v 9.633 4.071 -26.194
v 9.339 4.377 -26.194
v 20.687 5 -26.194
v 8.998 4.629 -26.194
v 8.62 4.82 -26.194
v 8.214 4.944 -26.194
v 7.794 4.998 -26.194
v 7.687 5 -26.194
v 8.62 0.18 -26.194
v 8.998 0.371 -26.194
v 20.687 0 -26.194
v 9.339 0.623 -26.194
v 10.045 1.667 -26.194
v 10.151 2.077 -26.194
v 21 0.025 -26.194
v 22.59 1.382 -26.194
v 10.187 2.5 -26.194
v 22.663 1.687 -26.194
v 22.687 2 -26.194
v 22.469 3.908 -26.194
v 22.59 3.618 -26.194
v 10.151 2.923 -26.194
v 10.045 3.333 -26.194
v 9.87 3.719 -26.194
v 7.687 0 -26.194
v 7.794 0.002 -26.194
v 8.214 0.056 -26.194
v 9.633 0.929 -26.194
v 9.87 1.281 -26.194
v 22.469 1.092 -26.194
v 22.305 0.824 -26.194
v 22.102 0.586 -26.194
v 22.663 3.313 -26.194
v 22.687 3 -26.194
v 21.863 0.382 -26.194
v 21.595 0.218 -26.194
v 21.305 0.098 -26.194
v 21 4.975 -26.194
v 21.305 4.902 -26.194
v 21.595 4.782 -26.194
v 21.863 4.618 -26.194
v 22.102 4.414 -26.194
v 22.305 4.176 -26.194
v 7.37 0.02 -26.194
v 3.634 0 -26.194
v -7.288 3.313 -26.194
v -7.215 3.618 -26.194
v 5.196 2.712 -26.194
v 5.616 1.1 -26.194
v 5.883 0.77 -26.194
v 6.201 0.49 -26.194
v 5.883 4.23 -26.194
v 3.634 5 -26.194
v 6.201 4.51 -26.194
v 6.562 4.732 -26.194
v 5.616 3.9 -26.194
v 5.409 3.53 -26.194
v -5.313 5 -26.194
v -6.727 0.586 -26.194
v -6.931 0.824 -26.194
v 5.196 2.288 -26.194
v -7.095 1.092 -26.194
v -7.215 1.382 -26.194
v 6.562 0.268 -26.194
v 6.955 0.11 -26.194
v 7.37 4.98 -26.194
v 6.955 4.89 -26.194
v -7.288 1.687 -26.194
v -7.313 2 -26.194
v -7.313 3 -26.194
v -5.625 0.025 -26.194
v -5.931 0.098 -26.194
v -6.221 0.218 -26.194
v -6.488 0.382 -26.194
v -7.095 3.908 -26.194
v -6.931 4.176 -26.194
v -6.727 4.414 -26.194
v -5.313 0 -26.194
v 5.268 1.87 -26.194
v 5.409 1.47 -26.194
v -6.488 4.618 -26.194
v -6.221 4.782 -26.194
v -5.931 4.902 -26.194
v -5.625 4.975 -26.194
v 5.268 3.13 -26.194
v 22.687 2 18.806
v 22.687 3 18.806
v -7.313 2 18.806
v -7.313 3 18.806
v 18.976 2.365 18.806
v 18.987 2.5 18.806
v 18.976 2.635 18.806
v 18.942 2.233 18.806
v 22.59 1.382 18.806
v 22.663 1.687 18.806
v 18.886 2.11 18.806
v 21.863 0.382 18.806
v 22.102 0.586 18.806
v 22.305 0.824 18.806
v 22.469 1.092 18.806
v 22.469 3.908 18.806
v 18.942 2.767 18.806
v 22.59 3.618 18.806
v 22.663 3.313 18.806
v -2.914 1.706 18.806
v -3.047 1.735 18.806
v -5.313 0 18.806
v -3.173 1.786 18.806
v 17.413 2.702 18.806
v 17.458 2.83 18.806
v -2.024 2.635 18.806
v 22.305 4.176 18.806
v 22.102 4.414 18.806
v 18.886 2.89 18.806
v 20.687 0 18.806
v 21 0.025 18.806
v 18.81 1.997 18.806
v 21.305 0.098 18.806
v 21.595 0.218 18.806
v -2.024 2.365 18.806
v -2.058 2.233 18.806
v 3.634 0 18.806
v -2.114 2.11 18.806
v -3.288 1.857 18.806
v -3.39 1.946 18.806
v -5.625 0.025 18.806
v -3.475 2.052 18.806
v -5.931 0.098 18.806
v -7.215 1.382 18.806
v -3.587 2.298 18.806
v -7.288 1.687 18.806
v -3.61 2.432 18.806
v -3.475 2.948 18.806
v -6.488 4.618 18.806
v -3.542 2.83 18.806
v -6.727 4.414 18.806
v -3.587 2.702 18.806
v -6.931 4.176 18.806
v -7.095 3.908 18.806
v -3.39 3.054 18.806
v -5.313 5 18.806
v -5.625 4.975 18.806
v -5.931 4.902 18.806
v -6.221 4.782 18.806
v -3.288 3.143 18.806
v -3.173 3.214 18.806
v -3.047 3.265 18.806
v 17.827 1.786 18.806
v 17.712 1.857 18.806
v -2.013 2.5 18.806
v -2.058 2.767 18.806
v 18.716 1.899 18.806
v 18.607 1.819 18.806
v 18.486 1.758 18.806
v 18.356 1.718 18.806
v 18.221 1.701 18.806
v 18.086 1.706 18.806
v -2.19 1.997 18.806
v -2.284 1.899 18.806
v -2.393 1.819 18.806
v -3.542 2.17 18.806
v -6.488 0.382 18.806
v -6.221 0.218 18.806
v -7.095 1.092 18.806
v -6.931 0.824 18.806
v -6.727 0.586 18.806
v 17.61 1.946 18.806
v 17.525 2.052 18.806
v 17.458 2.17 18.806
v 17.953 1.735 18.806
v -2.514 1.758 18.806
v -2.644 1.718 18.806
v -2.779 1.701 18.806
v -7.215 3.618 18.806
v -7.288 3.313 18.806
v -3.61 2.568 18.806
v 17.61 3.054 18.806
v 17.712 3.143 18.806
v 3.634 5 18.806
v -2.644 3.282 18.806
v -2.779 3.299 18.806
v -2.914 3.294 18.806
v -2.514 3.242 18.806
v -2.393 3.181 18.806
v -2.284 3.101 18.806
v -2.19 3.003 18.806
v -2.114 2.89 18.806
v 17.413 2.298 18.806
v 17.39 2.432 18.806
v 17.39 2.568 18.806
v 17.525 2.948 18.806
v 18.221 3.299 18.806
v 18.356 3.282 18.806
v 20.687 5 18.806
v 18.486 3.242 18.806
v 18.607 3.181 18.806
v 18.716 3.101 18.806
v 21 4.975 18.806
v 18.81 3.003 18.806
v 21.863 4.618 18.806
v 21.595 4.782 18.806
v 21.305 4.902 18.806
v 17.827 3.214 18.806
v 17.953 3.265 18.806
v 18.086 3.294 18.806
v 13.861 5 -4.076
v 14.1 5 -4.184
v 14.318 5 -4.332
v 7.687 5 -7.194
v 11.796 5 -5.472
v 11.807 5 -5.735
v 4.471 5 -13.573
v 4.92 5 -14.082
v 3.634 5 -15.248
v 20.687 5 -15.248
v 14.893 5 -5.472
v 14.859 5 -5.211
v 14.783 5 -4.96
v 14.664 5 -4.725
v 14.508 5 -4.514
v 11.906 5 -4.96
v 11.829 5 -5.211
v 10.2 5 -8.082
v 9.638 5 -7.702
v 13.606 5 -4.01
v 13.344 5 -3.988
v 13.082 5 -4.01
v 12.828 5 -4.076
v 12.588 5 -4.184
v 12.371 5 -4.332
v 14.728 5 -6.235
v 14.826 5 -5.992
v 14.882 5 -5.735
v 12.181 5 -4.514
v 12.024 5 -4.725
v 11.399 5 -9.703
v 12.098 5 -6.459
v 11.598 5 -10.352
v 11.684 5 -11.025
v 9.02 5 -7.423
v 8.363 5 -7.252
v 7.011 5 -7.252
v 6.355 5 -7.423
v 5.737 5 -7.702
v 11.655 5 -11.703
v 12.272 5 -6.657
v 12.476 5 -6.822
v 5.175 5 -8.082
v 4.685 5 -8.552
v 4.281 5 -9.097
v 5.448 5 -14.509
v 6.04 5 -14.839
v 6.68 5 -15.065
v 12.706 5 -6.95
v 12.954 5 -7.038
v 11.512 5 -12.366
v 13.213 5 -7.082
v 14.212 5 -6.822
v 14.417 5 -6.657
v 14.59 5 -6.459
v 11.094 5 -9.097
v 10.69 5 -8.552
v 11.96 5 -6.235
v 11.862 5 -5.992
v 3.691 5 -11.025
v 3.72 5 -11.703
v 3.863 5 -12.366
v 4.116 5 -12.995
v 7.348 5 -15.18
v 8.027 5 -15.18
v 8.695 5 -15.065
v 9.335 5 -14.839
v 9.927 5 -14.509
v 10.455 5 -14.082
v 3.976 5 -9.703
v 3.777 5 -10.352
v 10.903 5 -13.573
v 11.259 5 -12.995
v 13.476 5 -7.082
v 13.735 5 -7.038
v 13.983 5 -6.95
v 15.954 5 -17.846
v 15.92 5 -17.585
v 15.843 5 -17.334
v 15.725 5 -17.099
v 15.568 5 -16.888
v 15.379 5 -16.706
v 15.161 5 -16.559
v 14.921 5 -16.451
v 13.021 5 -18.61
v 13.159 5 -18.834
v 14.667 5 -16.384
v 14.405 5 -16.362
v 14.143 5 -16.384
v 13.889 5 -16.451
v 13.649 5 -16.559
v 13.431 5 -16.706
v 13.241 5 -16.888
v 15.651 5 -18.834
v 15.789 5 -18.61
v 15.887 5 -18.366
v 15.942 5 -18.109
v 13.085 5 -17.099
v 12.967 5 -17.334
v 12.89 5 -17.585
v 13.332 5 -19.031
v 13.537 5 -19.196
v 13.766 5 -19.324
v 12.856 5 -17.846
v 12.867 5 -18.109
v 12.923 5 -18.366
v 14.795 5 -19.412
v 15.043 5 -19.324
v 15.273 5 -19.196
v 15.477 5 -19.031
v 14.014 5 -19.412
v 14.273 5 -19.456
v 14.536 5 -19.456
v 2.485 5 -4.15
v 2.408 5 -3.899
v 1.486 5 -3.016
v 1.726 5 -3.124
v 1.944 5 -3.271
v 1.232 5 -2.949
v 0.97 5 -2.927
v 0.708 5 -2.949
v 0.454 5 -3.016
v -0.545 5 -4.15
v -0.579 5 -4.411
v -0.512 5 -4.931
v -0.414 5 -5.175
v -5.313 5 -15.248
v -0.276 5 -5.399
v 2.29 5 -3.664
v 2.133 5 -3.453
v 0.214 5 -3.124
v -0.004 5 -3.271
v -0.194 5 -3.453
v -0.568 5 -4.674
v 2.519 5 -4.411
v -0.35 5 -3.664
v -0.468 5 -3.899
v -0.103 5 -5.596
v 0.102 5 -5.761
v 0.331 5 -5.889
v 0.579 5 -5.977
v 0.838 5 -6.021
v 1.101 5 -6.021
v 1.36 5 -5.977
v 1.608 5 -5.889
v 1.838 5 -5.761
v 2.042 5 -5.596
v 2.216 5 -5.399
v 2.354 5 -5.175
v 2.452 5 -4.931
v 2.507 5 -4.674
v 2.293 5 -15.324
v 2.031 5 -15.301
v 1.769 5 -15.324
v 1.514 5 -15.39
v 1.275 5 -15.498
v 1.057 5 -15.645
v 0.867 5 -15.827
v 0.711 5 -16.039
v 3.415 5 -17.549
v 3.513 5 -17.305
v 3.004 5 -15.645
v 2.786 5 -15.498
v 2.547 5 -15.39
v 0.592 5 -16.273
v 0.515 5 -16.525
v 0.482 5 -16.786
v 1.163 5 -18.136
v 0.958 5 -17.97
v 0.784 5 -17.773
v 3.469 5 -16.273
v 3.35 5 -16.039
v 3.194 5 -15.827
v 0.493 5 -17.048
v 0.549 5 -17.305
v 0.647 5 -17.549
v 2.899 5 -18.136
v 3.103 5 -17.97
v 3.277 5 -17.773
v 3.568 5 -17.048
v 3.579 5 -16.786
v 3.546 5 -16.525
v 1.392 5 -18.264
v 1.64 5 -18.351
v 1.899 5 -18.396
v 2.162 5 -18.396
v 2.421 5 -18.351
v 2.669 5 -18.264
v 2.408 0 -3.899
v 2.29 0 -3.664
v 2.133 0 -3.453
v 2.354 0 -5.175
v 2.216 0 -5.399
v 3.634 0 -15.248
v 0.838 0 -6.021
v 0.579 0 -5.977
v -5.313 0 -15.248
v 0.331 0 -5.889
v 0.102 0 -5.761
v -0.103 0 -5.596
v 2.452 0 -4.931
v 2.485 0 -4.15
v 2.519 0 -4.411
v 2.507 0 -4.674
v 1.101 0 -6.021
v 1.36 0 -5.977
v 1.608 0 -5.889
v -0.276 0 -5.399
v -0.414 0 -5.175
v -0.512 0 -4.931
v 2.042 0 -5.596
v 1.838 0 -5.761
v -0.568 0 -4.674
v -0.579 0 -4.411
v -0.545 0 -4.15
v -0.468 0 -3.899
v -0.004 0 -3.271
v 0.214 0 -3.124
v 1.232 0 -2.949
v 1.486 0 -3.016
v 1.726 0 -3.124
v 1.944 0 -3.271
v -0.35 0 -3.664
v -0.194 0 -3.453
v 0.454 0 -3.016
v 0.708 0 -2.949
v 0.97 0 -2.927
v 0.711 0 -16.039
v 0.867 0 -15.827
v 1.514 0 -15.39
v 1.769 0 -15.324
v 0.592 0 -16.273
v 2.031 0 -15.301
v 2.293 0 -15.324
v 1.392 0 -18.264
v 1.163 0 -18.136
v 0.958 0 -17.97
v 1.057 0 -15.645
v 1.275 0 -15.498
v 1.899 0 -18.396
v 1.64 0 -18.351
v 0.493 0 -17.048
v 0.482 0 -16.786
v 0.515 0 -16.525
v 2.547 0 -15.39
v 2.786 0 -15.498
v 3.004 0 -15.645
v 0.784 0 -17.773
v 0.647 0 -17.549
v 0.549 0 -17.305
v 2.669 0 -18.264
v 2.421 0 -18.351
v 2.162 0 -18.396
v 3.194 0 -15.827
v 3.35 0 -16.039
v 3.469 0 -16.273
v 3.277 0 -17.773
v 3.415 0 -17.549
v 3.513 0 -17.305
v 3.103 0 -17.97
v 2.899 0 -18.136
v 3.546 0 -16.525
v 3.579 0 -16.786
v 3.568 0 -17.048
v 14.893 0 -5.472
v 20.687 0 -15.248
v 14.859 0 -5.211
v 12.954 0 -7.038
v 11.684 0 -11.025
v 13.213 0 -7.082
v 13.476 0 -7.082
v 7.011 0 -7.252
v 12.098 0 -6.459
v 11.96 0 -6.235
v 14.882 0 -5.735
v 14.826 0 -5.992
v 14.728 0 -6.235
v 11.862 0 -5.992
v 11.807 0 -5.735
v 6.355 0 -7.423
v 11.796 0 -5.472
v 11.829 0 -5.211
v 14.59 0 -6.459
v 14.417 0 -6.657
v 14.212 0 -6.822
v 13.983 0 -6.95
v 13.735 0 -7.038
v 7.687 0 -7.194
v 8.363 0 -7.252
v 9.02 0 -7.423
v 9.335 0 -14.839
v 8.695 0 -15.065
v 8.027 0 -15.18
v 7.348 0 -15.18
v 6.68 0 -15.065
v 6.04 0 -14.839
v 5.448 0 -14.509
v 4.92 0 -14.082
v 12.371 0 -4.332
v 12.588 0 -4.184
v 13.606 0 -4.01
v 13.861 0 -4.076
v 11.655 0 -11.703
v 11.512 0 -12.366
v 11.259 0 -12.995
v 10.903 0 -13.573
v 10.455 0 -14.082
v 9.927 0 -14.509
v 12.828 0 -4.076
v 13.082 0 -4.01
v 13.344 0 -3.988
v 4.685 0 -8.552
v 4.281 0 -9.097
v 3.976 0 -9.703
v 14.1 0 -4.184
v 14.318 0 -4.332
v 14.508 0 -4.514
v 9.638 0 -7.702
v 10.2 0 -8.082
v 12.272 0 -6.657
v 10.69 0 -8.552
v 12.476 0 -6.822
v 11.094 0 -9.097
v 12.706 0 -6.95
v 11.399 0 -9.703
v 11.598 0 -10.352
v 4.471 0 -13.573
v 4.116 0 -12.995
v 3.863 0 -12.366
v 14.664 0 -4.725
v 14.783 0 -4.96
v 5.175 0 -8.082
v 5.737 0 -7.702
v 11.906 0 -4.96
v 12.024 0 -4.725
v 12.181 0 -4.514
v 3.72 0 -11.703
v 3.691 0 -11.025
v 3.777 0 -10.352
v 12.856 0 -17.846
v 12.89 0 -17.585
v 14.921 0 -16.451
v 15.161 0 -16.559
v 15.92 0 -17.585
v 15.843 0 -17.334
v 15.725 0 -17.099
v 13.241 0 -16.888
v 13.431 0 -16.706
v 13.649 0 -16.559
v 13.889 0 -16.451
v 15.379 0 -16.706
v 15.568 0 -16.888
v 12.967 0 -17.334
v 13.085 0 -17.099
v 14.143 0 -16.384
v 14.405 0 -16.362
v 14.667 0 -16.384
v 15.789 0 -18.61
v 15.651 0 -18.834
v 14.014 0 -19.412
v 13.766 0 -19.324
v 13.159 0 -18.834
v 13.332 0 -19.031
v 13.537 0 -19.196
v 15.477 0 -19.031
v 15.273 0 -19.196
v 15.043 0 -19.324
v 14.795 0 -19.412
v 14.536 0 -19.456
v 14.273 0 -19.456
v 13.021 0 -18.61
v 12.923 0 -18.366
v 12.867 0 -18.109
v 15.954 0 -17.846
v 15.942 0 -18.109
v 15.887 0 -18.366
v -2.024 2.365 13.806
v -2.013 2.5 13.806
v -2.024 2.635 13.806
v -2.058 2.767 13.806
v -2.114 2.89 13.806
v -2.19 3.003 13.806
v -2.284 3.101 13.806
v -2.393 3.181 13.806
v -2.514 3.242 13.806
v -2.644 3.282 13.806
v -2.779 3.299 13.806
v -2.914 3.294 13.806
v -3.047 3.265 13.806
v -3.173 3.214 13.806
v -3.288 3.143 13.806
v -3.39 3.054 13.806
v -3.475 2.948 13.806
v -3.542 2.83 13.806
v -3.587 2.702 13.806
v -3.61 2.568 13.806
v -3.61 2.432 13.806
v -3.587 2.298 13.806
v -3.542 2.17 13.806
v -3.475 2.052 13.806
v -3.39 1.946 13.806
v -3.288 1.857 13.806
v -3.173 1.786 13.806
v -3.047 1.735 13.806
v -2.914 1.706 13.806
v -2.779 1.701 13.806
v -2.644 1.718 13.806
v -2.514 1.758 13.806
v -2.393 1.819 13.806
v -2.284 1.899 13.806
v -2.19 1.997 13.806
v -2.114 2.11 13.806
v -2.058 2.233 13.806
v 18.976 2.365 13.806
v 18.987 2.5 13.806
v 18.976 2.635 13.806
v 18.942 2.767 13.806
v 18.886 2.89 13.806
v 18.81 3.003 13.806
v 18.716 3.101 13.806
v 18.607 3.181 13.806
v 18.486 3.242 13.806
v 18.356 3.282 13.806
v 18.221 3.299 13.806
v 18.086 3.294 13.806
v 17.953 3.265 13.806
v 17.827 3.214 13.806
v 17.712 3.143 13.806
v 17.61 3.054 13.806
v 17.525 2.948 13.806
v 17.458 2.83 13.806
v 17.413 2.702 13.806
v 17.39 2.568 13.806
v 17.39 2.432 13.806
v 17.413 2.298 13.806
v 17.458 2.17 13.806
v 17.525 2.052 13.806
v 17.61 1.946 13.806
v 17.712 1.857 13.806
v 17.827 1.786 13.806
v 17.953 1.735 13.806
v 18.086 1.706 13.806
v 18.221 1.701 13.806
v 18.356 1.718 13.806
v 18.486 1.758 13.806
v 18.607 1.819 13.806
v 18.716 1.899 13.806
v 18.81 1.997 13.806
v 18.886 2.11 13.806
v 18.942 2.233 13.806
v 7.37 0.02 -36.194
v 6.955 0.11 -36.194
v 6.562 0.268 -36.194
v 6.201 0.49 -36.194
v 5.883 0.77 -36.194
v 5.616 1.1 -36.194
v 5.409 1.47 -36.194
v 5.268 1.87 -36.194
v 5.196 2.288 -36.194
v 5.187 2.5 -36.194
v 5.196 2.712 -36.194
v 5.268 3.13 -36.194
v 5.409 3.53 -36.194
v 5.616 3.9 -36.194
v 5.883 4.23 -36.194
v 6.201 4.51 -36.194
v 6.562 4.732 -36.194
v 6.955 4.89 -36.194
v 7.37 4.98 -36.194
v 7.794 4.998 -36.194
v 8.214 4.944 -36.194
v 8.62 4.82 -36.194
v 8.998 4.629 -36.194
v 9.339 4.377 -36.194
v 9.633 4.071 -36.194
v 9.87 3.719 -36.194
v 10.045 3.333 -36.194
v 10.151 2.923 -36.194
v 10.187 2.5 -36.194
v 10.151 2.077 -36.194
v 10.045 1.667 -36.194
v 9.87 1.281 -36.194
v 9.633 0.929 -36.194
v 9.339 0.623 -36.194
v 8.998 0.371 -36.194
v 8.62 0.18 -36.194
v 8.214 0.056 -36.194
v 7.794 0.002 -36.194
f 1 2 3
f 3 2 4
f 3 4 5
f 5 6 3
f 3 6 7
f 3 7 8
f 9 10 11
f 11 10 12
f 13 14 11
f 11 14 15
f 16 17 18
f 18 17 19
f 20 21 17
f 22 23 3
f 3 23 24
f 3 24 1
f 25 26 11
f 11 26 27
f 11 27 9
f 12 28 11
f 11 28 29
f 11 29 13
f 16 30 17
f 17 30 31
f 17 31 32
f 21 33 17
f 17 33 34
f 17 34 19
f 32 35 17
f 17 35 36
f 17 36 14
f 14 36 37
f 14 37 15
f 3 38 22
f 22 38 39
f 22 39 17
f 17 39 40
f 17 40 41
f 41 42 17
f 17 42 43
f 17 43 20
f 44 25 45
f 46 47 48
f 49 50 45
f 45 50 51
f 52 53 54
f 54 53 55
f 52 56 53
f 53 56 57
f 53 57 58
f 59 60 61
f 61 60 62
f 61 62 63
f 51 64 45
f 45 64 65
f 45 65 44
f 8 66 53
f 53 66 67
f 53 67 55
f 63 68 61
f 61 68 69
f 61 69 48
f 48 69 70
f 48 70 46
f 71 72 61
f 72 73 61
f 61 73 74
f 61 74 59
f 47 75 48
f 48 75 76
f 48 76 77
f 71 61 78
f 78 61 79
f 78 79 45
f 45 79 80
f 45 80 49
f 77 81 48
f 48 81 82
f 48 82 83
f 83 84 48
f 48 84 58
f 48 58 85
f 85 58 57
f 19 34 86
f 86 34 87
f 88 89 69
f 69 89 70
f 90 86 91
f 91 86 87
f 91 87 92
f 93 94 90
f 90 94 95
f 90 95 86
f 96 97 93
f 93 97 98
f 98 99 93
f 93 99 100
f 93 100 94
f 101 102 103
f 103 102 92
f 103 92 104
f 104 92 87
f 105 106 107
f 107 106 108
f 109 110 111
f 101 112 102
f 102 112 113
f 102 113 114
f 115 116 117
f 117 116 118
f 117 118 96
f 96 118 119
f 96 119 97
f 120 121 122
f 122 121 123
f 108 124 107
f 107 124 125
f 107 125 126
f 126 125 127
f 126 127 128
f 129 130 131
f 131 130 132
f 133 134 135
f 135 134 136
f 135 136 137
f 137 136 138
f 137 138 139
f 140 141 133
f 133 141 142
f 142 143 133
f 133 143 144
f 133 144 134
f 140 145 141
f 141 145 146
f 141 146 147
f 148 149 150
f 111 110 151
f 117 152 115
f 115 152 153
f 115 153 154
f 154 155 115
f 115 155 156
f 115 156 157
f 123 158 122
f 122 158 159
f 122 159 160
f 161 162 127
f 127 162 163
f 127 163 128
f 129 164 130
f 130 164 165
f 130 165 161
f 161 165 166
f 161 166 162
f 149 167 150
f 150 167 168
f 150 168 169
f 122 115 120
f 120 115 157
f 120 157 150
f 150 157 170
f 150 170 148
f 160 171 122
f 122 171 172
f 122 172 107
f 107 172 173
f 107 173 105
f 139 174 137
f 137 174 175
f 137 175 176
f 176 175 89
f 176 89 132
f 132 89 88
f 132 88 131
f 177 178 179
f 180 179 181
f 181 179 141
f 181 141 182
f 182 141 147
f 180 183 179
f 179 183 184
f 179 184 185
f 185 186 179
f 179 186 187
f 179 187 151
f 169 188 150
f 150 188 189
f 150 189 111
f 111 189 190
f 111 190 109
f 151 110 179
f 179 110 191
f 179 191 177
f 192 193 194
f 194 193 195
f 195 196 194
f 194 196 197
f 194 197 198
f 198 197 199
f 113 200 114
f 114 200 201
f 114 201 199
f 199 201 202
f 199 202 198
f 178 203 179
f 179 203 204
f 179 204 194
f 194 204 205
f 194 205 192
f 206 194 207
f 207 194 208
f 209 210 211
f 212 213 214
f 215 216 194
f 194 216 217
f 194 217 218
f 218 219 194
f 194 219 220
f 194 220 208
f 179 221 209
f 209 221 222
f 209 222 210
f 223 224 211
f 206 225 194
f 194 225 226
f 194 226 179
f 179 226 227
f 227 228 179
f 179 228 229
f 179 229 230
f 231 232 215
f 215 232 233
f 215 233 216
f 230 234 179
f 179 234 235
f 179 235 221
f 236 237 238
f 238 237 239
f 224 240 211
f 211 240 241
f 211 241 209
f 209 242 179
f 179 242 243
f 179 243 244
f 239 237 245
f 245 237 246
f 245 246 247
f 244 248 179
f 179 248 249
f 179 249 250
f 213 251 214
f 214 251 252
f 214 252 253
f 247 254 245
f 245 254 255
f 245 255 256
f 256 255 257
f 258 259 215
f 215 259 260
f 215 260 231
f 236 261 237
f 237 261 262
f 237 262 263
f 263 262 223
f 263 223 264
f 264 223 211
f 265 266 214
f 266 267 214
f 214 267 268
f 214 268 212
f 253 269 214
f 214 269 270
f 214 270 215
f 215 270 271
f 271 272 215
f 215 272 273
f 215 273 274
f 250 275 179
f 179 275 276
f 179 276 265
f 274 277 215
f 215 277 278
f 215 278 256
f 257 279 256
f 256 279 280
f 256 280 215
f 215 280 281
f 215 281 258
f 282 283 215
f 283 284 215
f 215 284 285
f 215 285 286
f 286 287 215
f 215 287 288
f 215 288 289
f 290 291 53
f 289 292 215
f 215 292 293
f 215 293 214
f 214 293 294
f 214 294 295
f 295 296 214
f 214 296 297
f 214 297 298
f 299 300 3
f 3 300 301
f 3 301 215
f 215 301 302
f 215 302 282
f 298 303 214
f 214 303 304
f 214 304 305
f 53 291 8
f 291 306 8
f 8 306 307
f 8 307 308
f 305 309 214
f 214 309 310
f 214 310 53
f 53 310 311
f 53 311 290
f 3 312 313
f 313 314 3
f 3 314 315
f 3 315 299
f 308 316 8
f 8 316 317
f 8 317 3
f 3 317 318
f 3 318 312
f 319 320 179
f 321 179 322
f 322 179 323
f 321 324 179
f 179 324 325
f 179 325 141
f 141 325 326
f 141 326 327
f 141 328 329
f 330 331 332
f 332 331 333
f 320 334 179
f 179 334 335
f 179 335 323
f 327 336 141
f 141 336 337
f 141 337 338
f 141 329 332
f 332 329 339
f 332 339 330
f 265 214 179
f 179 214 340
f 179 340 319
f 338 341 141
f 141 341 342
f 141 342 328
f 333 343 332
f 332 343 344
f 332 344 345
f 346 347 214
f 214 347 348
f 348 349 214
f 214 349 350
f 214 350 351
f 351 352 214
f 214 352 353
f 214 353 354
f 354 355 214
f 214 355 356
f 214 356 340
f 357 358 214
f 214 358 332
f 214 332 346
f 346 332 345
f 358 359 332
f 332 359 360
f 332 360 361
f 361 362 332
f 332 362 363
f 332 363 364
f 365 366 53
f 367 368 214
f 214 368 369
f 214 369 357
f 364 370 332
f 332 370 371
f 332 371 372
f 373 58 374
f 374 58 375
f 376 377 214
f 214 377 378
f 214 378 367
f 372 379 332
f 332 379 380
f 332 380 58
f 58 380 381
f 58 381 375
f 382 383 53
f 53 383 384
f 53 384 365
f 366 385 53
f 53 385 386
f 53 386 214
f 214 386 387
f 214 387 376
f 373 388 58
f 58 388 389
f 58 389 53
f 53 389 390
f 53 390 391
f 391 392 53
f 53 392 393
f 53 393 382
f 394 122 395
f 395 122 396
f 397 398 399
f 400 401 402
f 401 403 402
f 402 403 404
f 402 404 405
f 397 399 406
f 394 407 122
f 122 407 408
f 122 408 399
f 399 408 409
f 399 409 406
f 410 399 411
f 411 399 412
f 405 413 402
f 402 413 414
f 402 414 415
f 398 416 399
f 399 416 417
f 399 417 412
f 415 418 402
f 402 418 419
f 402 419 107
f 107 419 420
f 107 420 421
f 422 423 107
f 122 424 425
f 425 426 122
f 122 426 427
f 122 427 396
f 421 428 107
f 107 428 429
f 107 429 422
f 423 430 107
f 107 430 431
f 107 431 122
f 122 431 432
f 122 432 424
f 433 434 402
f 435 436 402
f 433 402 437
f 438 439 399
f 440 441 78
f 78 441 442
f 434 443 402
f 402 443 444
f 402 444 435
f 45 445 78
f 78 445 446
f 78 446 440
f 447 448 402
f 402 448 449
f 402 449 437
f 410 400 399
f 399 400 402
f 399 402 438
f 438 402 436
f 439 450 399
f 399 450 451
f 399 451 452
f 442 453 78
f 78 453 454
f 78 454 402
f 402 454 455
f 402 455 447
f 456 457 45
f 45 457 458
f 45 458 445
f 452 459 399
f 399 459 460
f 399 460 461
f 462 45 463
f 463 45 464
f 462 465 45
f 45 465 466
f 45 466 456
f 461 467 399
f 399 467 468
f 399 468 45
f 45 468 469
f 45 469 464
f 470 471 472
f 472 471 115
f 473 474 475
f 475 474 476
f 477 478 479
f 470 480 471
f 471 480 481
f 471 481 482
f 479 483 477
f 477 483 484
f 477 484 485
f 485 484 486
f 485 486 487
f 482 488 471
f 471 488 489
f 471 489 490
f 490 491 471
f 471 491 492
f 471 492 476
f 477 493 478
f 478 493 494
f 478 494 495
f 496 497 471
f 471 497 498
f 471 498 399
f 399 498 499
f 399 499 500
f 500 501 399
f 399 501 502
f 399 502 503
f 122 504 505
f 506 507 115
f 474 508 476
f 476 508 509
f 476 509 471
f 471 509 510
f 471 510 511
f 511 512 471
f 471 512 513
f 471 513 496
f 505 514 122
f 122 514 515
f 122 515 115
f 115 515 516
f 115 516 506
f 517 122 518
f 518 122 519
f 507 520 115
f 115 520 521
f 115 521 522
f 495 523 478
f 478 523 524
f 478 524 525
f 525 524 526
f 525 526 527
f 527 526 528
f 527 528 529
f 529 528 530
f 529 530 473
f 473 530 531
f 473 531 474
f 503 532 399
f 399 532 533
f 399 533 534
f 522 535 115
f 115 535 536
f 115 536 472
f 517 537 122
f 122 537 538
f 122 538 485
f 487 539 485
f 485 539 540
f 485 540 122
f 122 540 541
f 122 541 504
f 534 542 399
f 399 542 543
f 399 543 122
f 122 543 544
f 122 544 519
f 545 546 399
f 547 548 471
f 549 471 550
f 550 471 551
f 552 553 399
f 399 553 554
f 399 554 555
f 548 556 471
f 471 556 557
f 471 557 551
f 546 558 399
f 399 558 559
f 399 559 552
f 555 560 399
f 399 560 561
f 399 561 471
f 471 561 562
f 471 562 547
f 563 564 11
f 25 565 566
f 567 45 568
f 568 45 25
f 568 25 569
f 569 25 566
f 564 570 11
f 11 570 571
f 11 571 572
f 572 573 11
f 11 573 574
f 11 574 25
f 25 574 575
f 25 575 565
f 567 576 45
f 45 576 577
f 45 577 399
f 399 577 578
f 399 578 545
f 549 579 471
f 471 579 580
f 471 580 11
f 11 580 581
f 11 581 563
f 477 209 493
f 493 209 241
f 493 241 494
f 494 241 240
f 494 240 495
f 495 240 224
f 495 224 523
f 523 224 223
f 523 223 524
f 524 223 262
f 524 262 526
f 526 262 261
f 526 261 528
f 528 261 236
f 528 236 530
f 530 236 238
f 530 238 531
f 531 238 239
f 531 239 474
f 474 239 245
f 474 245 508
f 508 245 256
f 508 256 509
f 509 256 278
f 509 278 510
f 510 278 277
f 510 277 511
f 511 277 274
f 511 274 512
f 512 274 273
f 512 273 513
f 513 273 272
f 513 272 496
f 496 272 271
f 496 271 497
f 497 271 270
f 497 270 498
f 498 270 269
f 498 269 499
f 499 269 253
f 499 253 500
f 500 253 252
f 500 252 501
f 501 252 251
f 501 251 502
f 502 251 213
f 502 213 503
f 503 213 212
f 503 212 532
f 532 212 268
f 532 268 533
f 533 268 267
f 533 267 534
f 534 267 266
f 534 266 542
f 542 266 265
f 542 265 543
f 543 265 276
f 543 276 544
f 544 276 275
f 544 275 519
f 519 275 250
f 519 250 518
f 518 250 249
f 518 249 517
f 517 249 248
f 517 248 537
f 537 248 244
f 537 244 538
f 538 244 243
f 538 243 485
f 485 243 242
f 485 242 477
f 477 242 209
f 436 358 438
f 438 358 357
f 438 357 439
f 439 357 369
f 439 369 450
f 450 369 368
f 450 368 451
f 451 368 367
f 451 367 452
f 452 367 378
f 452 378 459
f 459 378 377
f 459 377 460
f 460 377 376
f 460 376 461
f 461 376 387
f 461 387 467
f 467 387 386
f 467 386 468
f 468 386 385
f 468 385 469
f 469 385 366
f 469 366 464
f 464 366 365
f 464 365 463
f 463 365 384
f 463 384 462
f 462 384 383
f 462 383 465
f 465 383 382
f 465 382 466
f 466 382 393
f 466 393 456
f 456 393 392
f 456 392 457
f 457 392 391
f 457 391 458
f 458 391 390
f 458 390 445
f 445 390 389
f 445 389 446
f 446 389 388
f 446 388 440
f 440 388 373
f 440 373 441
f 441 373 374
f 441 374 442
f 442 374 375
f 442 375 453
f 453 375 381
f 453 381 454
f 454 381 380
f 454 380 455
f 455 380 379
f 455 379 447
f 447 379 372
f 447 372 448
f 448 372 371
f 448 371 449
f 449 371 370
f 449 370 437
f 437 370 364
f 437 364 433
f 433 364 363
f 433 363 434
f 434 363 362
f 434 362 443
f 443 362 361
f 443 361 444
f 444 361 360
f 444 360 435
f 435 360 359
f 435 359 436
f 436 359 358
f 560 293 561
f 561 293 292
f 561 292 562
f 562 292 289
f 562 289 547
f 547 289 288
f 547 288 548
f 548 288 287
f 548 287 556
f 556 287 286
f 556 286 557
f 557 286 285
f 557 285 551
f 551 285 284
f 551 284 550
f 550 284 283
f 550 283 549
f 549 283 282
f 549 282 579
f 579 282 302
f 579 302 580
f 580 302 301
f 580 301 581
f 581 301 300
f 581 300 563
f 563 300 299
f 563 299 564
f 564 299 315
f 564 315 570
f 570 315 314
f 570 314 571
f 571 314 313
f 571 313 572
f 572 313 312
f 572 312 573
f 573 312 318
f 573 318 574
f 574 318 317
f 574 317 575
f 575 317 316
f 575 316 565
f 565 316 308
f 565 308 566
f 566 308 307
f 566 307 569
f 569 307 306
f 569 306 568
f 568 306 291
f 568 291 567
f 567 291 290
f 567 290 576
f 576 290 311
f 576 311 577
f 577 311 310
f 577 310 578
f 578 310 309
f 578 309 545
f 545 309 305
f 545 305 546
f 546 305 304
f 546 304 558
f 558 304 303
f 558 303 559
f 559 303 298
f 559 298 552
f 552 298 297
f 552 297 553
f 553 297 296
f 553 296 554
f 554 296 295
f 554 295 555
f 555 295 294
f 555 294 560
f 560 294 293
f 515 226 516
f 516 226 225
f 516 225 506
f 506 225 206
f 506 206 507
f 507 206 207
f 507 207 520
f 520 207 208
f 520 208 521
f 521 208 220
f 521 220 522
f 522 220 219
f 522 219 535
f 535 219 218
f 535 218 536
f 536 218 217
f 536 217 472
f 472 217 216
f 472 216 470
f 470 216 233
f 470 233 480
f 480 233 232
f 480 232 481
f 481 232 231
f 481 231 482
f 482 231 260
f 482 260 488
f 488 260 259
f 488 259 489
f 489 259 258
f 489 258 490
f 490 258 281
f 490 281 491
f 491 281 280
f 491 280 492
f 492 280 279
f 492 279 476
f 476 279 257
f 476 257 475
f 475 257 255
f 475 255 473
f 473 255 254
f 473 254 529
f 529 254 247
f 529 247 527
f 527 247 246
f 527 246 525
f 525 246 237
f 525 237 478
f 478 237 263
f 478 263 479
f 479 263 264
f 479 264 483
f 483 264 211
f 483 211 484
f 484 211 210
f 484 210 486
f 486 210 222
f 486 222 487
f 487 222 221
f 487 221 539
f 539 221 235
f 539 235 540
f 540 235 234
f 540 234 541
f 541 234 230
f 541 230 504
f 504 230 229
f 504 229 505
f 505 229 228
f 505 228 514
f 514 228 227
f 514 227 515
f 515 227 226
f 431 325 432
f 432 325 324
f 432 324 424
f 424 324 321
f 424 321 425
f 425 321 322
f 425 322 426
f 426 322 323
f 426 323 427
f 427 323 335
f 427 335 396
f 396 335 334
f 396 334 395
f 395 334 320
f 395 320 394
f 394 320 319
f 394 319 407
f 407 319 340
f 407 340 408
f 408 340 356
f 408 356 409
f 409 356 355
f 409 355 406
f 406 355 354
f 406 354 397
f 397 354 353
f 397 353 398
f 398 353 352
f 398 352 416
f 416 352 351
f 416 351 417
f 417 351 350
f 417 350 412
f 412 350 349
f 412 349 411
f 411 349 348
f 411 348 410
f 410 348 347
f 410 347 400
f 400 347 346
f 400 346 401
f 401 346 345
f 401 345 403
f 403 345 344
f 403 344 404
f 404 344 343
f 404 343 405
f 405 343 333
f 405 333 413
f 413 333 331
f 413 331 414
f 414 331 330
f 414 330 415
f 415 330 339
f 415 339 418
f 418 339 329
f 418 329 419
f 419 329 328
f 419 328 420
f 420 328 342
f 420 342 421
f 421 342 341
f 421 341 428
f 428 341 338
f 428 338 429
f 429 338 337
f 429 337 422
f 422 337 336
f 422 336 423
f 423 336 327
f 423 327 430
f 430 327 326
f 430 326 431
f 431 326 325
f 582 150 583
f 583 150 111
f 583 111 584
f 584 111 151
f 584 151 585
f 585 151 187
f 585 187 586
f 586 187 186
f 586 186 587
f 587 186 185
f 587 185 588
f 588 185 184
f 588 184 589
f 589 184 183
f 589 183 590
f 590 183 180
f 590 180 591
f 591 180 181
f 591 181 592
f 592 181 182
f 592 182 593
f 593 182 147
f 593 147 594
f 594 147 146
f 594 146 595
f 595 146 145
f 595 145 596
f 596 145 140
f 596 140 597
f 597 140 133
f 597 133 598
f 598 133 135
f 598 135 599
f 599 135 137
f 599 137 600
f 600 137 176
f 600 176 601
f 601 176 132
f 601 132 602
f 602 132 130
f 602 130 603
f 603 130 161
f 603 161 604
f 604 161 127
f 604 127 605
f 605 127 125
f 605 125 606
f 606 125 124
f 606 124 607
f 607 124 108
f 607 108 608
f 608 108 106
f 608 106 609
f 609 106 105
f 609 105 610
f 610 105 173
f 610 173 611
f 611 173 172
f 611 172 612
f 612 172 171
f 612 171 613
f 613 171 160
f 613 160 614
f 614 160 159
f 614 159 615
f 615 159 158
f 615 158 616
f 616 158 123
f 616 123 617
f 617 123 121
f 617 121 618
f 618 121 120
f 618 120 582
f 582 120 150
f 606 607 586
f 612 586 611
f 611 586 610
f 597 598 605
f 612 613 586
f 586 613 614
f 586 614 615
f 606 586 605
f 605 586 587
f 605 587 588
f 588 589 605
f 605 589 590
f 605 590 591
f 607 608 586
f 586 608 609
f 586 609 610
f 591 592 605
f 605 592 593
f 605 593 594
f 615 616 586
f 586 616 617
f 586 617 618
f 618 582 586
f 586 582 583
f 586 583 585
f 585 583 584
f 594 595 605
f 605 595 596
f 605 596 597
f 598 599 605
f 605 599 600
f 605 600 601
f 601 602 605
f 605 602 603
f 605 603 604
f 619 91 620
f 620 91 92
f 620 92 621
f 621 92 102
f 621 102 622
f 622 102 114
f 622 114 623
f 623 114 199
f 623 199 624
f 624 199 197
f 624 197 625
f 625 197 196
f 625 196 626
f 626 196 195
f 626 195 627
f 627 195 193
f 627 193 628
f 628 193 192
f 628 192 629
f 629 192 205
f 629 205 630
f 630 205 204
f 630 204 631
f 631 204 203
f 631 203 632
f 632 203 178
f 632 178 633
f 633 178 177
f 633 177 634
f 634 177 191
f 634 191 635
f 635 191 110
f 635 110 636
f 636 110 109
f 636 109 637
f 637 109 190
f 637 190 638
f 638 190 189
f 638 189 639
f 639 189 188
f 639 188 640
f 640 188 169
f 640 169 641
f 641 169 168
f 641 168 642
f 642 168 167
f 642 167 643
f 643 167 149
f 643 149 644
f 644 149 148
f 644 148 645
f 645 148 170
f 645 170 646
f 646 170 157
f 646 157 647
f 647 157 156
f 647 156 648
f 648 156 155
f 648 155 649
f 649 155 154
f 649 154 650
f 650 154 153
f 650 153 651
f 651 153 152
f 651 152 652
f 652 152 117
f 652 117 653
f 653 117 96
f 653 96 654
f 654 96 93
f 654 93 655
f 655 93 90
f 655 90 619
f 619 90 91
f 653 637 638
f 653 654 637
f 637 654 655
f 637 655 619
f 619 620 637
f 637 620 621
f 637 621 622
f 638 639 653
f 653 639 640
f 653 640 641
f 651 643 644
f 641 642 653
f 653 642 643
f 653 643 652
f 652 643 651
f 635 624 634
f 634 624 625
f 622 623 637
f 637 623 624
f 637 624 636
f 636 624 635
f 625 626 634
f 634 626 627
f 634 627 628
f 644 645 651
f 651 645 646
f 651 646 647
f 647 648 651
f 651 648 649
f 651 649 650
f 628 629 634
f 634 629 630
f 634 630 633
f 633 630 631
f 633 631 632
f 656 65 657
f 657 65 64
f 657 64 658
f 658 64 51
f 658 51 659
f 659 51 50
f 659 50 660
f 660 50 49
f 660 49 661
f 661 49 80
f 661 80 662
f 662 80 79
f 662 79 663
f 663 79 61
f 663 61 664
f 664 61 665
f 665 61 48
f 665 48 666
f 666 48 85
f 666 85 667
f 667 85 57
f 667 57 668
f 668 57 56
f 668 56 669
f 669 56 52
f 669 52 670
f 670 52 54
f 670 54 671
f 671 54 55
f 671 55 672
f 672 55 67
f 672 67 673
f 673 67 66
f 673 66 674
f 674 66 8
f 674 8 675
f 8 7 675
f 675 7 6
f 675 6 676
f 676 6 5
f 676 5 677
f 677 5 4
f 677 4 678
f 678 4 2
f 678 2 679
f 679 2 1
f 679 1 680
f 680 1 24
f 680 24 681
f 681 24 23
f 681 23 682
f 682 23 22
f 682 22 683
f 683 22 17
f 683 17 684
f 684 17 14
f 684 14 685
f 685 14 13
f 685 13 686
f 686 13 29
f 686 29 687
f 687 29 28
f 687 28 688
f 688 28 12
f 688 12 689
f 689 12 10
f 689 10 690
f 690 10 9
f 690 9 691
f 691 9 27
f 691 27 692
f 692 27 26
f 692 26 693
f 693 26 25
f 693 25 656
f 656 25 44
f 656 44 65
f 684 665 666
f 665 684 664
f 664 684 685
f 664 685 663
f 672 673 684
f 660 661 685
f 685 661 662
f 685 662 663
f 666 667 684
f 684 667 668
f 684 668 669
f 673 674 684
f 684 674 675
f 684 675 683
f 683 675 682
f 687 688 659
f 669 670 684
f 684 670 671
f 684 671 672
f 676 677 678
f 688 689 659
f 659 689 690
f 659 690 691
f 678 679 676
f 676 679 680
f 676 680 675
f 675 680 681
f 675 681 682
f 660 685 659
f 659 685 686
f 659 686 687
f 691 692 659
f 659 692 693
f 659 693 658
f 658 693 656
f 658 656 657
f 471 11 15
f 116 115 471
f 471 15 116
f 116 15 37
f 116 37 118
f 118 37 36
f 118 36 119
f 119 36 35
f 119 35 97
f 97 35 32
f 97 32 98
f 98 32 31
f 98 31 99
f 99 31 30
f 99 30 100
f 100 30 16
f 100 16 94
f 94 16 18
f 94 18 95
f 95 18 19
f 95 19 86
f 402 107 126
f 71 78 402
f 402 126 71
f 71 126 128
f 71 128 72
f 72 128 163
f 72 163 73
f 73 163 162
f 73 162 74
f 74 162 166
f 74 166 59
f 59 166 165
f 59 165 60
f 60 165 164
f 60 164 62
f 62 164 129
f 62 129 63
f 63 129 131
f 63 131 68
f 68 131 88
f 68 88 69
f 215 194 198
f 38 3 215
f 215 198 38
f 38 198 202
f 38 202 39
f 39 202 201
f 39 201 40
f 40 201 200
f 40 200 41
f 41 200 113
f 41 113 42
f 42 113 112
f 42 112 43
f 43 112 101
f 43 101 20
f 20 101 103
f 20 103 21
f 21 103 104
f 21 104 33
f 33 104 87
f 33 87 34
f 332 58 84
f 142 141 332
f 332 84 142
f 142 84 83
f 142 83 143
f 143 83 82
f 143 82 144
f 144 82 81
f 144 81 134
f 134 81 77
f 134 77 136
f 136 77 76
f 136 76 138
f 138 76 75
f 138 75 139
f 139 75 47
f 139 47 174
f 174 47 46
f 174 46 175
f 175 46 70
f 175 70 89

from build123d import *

# Parameters (mm, degrees)
SKETCH1_W           = 30
SKETCH1_H           = 45
BOSS_EXTRUDE1_DEPTH = 5
SKETCH2_R           = 4
CUT_EXTRUDE1_DEPTH  = 5
SKETCH3_R           = 1.55
CUT_EXTRUDE2_DEPTH  = 5
SKETCH4_R           = 0.8
CUT_EXTRUDE3_DEPTH  = 5
SKETCH5_R           = 2.5
BOSS_EXTRUDE2_DEPTH = 10
FILLET1_R           = 2


with BuildPart() as part:
    # Sketch1 → Boss-Extrude1 (new body)
    with BuildSketch(Plane(origin=(0, 0, 0), x_dir=(1, 0, 0), z_dir=(0, 1, 0))):
        with Locations((7.687417977, 3.694491888)):
            Rectangle(SKETCH1_W, SKETCH1_H)
    extrude(amount=BOSS_EXTRUDE1_DEPTH)

    # Sketch2 → Cut-Extrude1 (cut)
    with BuildSketch(Plane(origin=(0, 5, 0), x_dir=(-1, 0, 0), z_dir=(0, 1, 0))):
        with Locations(Location((-7.687417977, -11.194491888, 0), (0, 0, 90))):
            Circle(SKETCH2_R)
    extrude(amount=-CUT_EXTRUDE1_DEPTH, mode=Mode.SUBTRACT)

    # Sketch3 → Cut-Extrude2 (cut)
    with BuildSketch(Plane(origin=(0, 5, 0), x_dir=(1, 0, 0), z_dir=(0, 1, 0))):
        with Locations(Location((2.030563727, 16.851346138, 0), (0, 0, 270))):
            Circle(SKETCH3_R)
        with Locations(Location((14.404932398, 17.912006309, 0), (0, 0, 270))):
            Circle(SKETCH3_R)
        with Locations(Location((13.344272226, 5.537637639, 0), (0, 0, 270))):
            Circle(SKETCH3_R)
        with Locations(Location((0.969903556, 4.476977467, 0), (0, 0, 270))):
            Circle(SKETCH3_R)
    extrude(amount=-CUT_EXTRUDE2_DEPTH, mode=Mode.SUBTRACT)

    # Sketch4 → Cut-Extrude3 (cut)
    with BuildSketch(Plane.XY.offset(18.805508112)):
        with Locations((-2.812582023, 2.5)):
            Circle(SKETCH4_R)
        with Locations((18.187417977, 2.5)):
            Circle(SKETCH4_R)
    extrude(amount=-CUT_EXTRUDE3_DEPTH, mode=Mode.SUBTRACT)

    # Sketch5 → Boss-Extrude2 (add)
    with BuildSketch(Plane(origin=(0, 0, -26.194491888), x_dir=(-1, 0, 0), z_dir=(0, 0, -1))):
        with Locations(Location((-7.687417977, 2.5, 0), (0, 0, 270))):
            Circle(SKETCH5_R)
    extrude(amount=BOSS_EXTRUDE2_DEPTH)

    # Fillet1
    fillet1_edges = [part.edges().sort_by_distance(p)[0] for p in [
        (-7.312582023, 5, -3.694491888),
        (22.687417977, 5, -3.694491888),
        (-7.312582023, 0, -3.694491888),
        (22.687417977, 0, -3.694491888),
    ]]
    fillet(fillet1_edges, radius=FILLET1_R)


solid = part.part
